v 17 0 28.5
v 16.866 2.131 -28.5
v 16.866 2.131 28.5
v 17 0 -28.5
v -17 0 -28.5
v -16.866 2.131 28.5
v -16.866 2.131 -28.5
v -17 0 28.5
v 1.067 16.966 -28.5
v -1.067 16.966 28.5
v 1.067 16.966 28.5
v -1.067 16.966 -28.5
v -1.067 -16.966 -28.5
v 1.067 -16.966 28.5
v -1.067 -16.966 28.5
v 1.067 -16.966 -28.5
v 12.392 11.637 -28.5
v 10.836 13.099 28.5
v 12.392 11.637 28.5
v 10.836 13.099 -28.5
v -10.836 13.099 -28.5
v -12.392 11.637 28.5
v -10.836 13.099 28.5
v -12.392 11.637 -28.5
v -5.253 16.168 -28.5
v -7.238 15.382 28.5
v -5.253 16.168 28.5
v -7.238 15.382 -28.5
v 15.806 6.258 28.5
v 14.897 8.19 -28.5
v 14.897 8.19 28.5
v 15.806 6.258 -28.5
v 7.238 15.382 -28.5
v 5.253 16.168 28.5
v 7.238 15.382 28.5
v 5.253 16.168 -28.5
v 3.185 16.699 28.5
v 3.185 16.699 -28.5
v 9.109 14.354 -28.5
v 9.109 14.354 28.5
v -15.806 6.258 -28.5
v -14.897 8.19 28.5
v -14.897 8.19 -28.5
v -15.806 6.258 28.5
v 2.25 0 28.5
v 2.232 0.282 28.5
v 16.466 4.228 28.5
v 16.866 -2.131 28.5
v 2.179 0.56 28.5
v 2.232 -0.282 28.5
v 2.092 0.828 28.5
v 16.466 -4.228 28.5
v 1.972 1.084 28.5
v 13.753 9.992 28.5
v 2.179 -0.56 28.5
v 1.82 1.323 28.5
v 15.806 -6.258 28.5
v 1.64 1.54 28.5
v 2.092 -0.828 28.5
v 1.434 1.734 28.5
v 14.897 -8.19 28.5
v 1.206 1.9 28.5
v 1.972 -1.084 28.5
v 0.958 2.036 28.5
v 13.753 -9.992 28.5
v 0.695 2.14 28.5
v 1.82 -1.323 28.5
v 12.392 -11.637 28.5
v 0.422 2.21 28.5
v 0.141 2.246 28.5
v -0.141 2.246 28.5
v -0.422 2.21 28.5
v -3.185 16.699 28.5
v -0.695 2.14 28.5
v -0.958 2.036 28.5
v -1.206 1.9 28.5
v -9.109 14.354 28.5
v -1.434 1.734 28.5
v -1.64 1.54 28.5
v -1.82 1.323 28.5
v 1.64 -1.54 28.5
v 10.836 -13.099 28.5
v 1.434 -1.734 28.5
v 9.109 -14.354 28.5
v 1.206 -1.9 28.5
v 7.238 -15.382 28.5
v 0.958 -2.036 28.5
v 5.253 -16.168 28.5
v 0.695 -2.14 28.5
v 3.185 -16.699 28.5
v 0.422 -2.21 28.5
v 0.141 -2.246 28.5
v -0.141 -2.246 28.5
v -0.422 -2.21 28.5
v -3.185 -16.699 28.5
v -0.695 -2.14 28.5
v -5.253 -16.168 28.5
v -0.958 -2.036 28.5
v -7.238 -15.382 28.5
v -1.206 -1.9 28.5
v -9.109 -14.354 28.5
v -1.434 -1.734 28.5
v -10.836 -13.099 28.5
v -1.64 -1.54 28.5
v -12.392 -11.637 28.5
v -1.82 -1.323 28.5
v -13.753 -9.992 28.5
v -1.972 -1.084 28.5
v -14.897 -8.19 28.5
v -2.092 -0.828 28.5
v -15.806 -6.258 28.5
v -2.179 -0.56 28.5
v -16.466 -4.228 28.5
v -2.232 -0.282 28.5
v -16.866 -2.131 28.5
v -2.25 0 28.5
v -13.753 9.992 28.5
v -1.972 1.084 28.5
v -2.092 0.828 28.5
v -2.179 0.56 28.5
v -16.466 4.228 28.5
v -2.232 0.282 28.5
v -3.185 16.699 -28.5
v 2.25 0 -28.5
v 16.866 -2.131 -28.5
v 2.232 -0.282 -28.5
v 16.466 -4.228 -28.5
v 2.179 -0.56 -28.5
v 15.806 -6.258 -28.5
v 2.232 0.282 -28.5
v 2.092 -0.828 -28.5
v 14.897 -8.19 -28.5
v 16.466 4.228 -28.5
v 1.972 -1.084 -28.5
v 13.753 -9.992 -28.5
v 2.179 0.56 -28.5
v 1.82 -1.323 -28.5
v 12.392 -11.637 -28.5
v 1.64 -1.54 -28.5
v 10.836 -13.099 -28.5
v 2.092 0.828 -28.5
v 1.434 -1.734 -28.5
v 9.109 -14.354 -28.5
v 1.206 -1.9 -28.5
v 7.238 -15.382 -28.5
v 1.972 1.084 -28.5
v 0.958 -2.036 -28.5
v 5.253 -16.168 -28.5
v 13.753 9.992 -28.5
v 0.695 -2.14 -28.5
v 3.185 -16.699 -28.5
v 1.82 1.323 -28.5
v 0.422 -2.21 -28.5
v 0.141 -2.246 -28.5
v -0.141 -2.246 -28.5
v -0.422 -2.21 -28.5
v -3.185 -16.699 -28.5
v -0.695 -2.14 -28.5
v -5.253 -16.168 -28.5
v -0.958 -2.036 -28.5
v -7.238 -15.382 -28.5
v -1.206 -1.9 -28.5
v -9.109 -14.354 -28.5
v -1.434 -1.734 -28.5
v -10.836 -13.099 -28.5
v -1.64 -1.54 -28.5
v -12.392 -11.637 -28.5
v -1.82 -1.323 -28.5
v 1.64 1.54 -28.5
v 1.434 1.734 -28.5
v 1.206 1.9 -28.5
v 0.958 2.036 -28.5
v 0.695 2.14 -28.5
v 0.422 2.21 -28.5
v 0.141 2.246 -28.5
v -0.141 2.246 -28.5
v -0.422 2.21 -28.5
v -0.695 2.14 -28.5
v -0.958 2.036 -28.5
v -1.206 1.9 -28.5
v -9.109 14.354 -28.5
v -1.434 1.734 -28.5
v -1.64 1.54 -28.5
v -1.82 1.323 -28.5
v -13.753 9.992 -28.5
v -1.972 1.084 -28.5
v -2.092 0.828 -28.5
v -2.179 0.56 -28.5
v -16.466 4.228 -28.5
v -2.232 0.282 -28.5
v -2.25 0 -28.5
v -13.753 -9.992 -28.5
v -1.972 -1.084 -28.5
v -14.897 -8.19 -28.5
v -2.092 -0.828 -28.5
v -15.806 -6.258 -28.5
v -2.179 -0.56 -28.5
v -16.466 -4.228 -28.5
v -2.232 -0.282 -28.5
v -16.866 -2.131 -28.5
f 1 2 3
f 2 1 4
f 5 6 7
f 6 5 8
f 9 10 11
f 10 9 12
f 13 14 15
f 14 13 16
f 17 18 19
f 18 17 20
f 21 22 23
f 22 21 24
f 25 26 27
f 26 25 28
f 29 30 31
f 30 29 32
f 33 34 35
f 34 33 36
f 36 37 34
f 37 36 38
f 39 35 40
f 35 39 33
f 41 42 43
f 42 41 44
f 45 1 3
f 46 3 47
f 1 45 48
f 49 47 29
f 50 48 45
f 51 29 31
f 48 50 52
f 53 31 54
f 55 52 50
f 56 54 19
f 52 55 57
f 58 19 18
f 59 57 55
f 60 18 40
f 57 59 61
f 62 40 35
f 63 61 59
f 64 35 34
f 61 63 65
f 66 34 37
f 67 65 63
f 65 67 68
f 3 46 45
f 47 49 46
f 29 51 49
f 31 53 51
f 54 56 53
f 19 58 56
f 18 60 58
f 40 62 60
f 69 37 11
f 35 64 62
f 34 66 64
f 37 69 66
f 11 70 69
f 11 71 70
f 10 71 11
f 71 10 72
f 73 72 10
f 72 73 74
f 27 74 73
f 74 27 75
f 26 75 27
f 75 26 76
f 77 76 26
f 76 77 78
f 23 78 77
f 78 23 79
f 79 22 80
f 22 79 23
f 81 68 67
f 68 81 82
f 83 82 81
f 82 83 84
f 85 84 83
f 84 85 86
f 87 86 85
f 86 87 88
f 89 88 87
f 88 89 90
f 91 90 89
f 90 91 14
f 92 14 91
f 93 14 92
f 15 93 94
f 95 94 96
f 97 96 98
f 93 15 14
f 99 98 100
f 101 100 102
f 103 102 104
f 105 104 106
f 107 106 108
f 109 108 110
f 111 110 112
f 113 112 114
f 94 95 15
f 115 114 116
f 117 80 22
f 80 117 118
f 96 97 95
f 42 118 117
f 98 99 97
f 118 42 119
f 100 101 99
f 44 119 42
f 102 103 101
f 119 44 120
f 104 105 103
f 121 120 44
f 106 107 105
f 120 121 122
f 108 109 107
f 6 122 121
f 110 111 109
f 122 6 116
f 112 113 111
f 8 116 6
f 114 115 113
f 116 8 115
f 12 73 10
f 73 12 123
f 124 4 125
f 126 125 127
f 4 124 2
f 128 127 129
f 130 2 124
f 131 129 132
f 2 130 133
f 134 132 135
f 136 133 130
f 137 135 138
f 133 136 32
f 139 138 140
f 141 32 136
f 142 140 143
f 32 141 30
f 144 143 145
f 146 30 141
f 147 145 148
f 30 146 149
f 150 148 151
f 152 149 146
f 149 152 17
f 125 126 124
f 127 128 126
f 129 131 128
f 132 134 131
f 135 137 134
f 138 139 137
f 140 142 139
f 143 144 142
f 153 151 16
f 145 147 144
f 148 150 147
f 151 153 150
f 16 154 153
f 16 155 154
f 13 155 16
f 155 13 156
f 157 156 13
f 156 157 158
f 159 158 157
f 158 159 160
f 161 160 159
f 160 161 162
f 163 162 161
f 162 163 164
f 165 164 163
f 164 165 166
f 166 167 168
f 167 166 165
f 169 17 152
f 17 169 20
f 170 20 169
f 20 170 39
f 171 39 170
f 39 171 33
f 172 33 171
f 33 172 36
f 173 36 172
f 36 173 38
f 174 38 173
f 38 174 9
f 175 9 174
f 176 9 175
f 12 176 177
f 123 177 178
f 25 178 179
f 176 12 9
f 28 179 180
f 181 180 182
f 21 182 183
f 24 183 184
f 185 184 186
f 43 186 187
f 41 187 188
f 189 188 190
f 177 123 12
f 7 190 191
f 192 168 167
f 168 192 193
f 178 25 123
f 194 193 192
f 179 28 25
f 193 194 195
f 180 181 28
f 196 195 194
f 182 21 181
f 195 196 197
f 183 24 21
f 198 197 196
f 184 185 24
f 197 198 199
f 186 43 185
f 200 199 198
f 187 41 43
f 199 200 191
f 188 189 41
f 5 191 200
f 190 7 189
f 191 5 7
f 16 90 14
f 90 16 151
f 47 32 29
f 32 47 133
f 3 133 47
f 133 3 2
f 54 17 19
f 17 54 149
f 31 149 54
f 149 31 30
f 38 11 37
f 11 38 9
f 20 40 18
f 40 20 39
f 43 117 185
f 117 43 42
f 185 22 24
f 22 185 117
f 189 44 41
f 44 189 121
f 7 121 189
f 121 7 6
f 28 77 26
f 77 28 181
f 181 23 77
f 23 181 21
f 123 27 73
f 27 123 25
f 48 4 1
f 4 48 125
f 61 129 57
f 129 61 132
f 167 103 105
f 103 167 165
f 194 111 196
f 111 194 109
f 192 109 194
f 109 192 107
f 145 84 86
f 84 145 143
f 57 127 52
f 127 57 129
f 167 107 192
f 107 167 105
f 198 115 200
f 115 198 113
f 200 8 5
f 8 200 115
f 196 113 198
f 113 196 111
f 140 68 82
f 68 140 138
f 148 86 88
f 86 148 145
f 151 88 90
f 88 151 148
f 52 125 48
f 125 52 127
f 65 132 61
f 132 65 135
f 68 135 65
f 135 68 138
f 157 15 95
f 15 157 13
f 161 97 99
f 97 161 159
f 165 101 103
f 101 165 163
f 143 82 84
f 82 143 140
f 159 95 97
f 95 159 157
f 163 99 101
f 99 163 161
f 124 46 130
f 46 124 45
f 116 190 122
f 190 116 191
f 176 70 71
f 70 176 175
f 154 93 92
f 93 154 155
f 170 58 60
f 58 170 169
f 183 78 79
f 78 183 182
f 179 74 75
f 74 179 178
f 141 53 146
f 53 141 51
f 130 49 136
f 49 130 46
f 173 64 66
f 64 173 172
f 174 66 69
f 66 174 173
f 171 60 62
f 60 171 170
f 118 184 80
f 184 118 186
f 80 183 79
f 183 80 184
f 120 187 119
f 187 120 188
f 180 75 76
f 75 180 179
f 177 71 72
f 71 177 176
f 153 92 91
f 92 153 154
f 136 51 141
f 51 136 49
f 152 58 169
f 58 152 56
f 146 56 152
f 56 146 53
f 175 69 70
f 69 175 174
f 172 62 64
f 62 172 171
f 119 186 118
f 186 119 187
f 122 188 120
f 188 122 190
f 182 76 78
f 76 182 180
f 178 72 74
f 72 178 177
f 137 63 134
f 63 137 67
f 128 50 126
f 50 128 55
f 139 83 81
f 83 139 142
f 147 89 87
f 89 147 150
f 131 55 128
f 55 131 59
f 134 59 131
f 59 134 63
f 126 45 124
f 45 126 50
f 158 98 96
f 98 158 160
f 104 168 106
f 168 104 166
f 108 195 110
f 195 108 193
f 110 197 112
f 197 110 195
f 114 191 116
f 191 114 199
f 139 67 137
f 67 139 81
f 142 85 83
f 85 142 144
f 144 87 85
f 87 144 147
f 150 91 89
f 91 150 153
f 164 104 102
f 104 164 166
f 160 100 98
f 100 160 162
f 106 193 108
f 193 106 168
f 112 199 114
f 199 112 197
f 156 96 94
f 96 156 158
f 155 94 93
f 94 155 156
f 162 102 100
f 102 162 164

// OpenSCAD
$fn = 50;


difference() {
	union() {
		translate(v = [0, 0, -28.5000000000]) {
			cylinder(h = 57, r = 17.0000000000);
		}
	}
	union() {
		translate(v = [0, 0, -100.0000000000]) {
			cylinder(h = 200, r = 2.2500000000);
		}
	}
}
